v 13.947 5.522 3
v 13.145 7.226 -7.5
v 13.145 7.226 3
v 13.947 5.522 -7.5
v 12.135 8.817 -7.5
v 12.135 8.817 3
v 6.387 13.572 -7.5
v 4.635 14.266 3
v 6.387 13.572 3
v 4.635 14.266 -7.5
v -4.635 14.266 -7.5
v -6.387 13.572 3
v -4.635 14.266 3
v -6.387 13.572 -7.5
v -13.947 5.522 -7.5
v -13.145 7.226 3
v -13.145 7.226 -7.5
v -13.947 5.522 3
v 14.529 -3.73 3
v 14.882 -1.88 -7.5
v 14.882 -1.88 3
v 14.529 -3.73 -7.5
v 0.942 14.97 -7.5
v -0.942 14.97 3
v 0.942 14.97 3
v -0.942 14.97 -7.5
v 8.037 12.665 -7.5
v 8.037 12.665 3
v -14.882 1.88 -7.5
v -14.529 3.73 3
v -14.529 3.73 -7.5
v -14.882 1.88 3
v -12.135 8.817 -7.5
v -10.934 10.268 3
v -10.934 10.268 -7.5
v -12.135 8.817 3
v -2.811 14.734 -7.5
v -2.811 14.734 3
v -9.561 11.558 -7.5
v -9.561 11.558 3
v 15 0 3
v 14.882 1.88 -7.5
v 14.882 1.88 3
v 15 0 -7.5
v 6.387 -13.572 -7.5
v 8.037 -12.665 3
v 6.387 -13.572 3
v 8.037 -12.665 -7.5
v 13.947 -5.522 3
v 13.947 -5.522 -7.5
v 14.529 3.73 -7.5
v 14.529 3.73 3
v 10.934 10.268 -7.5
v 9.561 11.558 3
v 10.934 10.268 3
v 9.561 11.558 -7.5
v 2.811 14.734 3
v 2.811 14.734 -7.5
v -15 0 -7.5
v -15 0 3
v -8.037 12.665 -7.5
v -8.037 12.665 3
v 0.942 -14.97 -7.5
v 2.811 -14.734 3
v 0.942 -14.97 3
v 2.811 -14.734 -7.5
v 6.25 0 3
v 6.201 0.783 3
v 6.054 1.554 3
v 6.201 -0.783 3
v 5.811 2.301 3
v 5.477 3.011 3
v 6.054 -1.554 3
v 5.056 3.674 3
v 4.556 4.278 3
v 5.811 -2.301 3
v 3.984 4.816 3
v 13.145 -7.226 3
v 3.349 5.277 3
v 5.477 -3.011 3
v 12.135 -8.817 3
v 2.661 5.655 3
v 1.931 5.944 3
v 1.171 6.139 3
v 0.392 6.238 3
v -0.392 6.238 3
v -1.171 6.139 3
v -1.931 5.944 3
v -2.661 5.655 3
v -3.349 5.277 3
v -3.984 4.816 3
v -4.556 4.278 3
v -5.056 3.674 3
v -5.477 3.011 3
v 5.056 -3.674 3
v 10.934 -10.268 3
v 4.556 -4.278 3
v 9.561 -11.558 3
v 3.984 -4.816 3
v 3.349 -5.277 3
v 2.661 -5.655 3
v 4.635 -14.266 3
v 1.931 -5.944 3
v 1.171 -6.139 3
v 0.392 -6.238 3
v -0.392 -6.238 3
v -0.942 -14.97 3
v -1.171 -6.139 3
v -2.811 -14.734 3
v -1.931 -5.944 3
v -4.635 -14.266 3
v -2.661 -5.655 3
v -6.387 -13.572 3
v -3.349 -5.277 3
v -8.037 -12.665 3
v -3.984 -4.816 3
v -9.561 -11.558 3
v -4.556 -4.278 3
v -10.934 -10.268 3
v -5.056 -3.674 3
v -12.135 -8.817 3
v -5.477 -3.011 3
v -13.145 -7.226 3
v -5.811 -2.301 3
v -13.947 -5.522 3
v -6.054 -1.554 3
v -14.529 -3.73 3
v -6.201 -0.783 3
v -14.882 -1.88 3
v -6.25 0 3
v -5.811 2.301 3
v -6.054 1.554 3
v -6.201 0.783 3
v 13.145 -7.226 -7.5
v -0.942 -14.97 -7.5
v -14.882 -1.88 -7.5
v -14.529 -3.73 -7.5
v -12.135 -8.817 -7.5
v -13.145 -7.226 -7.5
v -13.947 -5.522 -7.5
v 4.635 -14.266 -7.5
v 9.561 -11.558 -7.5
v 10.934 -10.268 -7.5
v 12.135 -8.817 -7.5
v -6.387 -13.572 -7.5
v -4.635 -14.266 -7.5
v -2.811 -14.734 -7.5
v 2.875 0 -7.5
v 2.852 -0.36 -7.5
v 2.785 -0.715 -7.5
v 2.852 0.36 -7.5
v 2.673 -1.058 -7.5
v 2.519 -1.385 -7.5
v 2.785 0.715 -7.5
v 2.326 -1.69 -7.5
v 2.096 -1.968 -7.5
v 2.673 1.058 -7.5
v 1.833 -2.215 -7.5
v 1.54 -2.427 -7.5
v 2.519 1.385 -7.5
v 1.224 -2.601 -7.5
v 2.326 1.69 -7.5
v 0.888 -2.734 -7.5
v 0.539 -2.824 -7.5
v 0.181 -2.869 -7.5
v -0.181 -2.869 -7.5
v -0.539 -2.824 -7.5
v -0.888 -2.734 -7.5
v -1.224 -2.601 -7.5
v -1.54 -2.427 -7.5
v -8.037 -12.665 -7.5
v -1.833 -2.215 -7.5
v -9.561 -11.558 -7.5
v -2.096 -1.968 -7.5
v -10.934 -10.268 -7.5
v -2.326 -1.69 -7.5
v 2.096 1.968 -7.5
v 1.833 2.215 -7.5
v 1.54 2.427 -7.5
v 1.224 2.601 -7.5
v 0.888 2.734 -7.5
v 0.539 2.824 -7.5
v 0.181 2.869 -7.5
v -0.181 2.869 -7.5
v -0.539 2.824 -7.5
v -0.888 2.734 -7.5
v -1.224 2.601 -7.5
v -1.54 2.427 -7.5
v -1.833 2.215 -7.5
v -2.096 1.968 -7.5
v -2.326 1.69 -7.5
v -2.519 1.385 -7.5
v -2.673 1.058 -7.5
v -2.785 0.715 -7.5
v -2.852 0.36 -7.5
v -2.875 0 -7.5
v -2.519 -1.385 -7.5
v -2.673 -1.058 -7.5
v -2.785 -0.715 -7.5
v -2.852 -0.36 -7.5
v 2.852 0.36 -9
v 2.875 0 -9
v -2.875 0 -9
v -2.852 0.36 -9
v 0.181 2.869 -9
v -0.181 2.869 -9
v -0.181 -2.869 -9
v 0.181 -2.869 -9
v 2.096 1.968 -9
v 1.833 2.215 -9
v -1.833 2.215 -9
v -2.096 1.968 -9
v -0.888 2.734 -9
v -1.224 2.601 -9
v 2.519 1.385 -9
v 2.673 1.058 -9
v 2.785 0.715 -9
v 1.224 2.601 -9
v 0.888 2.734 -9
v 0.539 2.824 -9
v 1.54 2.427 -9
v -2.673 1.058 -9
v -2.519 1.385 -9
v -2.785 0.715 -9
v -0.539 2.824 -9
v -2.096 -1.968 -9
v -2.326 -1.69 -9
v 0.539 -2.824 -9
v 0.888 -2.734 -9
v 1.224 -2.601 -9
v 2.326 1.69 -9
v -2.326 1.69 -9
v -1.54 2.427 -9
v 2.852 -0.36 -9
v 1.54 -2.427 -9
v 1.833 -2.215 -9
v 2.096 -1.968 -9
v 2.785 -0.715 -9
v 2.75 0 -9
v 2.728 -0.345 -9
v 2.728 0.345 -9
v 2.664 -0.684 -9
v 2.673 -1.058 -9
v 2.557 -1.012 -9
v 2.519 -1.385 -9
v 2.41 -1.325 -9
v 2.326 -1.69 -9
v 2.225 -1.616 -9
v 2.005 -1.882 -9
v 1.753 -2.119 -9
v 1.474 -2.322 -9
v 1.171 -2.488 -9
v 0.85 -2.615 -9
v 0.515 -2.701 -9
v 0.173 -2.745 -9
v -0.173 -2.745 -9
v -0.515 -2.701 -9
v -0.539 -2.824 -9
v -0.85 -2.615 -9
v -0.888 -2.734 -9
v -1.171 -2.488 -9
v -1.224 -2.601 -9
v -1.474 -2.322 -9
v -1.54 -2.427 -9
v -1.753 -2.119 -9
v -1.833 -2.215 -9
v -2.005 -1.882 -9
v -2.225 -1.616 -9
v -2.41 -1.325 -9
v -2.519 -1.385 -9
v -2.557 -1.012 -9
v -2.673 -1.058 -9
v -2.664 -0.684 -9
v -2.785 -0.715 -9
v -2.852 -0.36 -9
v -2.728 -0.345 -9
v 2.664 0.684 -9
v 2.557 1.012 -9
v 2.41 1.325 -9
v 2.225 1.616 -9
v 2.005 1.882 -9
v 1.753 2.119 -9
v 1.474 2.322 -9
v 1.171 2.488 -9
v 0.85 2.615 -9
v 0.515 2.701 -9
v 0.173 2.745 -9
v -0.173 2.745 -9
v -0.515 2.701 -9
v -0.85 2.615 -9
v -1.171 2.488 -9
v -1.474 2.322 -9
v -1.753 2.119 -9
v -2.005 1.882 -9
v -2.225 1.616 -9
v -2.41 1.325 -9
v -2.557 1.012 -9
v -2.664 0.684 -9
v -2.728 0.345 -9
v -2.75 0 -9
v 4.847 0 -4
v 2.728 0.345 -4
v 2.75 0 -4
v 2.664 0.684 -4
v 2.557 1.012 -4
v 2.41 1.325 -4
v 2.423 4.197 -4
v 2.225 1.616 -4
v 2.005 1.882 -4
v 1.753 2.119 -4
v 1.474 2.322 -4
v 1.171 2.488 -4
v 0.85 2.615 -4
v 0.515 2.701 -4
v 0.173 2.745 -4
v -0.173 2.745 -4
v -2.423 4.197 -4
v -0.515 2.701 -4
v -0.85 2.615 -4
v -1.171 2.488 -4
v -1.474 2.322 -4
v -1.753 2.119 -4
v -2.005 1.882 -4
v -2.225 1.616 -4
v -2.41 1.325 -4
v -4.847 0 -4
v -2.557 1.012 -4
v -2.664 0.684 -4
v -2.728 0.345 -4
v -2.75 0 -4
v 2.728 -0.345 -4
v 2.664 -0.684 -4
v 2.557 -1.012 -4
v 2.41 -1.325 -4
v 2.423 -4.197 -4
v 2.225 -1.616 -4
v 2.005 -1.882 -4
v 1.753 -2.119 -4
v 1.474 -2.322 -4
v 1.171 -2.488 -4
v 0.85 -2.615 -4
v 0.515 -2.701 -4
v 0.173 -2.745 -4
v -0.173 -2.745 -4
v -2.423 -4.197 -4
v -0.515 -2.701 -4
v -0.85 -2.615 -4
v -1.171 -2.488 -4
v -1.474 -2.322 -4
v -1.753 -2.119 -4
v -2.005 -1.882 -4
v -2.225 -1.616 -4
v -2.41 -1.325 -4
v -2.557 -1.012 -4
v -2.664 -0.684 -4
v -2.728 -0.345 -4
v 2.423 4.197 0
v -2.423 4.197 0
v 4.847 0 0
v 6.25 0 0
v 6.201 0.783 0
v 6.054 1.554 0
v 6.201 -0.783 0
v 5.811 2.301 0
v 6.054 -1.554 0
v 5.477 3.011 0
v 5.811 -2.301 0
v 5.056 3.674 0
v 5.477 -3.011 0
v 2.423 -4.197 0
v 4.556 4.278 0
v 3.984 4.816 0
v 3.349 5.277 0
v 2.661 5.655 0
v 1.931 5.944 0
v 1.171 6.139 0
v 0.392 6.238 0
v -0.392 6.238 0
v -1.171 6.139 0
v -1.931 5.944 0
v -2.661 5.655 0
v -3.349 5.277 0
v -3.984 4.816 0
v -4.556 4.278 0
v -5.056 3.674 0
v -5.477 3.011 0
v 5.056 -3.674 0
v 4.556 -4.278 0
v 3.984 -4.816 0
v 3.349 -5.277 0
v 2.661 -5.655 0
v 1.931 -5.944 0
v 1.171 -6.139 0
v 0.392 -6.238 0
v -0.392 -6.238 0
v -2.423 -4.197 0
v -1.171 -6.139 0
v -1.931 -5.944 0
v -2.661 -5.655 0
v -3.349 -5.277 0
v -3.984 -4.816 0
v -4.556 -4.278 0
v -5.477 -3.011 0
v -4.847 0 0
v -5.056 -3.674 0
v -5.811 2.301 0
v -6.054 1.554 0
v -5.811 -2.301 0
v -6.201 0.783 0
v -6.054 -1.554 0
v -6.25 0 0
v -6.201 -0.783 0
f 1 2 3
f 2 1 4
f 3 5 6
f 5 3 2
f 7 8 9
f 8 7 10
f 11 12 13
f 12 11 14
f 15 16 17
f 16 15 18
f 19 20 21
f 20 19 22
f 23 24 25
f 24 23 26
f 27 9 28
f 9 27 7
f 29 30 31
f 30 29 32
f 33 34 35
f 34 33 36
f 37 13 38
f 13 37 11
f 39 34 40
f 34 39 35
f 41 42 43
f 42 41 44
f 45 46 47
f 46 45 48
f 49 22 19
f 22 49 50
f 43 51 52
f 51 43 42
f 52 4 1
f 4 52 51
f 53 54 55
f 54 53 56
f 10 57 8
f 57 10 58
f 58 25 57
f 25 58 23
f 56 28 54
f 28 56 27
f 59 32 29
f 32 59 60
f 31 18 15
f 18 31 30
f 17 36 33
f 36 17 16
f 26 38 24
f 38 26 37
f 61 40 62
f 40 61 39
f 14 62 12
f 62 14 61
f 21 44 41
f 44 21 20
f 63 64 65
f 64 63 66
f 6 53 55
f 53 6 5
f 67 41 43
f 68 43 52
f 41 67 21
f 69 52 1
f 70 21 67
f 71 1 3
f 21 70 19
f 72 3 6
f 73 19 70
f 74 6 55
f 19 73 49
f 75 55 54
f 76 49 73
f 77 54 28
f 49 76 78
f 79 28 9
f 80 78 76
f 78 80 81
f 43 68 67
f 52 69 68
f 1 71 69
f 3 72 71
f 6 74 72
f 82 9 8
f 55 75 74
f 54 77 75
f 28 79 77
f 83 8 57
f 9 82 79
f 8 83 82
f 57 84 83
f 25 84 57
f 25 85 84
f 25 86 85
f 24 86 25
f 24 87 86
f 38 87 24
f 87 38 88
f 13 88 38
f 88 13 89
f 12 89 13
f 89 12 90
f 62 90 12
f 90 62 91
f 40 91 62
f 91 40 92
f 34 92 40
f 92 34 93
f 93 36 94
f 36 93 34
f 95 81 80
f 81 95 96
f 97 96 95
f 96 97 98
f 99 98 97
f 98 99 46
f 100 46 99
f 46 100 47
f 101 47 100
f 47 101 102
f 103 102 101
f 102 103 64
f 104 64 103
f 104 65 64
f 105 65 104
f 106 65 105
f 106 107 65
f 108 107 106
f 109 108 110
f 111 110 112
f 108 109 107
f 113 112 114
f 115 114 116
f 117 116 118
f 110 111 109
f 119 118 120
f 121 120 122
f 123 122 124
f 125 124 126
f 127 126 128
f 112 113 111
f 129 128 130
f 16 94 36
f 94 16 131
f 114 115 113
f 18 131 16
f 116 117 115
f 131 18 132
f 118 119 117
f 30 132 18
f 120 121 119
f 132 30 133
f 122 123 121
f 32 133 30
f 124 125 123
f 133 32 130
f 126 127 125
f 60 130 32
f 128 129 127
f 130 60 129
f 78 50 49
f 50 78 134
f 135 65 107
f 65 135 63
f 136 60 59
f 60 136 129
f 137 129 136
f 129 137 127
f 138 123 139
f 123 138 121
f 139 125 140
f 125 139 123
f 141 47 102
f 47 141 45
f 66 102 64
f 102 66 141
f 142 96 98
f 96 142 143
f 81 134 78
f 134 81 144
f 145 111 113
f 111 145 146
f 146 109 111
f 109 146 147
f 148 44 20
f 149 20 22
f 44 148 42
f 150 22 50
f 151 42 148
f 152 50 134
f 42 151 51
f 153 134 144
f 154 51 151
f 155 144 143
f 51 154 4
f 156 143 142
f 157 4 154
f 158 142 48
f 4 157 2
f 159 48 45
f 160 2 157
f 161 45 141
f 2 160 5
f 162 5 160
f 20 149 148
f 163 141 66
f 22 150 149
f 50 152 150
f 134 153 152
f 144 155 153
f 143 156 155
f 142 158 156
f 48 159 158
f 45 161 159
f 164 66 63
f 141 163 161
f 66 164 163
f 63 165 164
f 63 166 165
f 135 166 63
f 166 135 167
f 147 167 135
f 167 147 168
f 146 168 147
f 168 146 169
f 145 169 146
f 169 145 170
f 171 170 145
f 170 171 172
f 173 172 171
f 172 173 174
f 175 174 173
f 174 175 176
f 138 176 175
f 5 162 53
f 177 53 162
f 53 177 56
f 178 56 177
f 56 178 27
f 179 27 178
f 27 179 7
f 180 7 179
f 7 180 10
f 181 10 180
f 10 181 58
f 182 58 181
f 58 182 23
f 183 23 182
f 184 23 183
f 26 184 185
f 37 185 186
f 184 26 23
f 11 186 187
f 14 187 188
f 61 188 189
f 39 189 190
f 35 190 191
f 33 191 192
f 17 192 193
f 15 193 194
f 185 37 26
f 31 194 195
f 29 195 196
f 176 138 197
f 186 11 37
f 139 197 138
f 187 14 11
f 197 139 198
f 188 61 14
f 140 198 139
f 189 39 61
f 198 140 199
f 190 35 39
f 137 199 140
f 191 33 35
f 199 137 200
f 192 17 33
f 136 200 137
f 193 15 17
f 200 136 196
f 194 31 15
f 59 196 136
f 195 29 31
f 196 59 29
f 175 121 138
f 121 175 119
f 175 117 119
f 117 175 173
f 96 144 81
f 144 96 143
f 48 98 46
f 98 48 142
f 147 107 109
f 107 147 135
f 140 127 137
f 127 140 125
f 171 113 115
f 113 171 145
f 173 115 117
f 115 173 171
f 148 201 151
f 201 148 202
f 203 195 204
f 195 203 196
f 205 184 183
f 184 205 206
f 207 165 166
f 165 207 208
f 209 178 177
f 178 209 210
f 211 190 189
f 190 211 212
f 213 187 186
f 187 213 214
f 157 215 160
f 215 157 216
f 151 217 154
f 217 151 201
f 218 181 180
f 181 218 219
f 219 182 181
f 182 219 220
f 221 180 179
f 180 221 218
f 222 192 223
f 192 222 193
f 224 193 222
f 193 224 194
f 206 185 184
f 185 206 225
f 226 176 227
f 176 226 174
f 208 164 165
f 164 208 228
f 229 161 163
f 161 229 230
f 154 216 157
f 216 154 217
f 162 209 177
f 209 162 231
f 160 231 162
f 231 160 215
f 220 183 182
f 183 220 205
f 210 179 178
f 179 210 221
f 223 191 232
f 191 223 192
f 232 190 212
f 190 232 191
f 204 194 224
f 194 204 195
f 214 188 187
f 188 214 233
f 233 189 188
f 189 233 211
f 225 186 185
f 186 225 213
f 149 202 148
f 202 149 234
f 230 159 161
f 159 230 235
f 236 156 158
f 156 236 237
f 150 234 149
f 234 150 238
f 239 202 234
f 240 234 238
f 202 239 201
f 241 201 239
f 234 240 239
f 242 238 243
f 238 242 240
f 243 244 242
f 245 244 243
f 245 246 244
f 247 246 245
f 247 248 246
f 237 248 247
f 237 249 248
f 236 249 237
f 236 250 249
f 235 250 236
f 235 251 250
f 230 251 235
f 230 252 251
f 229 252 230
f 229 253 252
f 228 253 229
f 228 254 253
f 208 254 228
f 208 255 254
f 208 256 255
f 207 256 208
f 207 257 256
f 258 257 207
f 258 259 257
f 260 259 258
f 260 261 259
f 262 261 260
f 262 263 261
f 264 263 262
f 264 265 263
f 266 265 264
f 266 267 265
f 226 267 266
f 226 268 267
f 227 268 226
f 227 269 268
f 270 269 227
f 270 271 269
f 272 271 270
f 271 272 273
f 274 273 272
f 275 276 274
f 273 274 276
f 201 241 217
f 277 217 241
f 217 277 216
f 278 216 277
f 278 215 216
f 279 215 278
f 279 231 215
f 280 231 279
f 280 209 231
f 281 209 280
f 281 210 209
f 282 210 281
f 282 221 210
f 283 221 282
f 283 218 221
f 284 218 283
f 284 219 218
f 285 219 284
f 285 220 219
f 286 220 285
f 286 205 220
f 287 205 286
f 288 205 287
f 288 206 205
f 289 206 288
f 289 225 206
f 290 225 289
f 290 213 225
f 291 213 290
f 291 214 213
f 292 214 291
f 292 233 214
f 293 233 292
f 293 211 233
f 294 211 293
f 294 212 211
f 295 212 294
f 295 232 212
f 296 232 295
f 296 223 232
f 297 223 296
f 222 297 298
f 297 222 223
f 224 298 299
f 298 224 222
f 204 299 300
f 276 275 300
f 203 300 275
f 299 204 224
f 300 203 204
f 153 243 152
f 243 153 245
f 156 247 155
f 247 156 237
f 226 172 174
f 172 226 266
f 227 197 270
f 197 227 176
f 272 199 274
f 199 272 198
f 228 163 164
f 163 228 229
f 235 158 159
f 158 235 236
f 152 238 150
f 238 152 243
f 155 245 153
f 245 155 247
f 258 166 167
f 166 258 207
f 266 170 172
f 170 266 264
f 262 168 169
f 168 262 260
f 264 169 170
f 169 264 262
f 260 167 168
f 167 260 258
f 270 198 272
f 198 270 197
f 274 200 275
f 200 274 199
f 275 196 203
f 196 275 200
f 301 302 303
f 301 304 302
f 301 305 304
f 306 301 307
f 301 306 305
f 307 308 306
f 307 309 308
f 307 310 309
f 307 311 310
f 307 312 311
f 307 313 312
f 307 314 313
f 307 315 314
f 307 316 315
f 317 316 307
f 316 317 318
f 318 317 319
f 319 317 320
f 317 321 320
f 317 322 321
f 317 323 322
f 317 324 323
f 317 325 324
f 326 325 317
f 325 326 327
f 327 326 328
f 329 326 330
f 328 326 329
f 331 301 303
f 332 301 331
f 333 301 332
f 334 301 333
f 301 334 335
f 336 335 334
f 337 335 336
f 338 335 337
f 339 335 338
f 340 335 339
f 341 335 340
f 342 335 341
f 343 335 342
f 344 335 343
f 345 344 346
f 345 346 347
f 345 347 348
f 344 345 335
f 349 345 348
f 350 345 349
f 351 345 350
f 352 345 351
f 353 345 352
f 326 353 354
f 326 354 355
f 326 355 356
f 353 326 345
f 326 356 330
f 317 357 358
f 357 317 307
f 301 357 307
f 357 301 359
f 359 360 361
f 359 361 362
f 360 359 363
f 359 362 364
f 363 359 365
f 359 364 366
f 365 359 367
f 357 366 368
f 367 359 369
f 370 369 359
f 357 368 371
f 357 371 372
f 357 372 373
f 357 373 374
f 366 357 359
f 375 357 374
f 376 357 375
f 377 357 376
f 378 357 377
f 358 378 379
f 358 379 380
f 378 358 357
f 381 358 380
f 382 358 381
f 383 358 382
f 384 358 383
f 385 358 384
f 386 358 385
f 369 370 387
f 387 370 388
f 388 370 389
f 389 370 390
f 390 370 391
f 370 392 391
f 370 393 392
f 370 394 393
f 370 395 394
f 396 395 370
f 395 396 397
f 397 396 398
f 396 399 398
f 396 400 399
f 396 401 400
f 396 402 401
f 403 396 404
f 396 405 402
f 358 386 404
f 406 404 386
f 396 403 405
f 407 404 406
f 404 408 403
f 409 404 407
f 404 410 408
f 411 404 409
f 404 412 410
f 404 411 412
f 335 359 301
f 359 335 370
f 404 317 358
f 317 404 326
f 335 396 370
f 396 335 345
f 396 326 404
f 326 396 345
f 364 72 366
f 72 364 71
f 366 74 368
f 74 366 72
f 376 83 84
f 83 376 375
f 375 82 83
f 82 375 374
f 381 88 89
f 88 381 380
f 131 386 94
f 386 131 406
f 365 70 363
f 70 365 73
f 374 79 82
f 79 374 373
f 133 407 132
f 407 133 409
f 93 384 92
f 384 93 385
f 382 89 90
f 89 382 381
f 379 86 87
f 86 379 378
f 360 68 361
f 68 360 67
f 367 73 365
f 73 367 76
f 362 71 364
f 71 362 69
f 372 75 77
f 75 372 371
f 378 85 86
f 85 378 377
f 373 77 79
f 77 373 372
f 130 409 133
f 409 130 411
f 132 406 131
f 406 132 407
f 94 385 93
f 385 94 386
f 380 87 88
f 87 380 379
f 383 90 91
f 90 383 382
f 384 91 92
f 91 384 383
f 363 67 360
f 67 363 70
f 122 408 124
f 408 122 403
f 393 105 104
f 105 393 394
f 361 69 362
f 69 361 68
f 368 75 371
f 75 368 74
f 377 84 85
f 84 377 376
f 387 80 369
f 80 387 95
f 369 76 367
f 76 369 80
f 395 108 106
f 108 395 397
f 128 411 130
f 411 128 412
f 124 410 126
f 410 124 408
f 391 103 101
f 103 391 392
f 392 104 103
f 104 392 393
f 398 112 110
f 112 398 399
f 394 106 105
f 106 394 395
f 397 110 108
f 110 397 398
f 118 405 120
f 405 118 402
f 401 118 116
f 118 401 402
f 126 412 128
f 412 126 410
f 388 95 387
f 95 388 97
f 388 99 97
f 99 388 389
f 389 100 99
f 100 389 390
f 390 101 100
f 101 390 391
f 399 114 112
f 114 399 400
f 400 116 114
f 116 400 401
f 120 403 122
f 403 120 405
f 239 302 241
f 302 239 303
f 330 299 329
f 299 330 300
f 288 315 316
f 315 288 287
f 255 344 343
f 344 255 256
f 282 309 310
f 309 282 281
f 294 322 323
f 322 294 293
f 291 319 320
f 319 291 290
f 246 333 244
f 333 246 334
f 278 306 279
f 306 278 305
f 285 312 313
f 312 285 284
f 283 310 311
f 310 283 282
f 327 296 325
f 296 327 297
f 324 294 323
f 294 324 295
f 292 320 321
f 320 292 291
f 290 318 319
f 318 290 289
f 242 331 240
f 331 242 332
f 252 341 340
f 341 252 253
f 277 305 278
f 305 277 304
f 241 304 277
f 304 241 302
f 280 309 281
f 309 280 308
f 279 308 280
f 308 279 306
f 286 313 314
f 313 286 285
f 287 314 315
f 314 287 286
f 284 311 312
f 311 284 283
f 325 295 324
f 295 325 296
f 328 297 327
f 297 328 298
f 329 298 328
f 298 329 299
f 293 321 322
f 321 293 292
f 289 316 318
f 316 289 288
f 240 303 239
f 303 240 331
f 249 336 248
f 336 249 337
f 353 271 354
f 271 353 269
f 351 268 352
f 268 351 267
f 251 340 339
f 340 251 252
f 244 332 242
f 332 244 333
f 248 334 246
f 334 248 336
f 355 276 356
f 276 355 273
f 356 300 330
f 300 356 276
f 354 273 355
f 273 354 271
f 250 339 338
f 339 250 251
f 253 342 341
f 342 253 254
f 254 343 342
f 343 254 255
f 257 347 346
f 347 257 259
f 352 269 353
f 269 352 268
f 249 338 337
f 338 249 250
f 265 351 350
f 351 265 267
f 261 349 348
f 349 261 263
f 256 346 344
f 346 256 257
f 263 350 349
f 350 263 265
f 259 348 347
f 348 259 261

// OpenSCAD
$fn = 50;

difference() {
	union() {
		translate(v = [0, 0, -7.5]) {
			cylinder(h = 10.5, r = 15.0);
		}
		#translate(v = [0, 0, -9.0]) {
			cylinder(h = 9, r = 2.875);
		}
	}
	union() {
		translate(v = [0, 0, 0]) {
			rotate(a = [0, 0, 0]) {
				difference() {
					union() {
						translate(v = [0, 0, -4]) {
							linear_extrude(height = 4) {
								polygon(points = [[4.8468, 0.0], [2.4234000000000004, 4.197451927062417], [-2.423399999999999, 4.197451927062417], [-4.8468, 5.935618106107392e-16], [-2.423400000000002, -4.197451927062416], [2.423399999999997, -4.197451927062419]]);
							}
						}
					}
					union();
				}
			}
		}
		#cylinder(h = 3, r = 6.25);
		#translate(v = [0, 0, -100.0]) {
			cylinder(h = 200, r = 2.75);
		}
	}
}
